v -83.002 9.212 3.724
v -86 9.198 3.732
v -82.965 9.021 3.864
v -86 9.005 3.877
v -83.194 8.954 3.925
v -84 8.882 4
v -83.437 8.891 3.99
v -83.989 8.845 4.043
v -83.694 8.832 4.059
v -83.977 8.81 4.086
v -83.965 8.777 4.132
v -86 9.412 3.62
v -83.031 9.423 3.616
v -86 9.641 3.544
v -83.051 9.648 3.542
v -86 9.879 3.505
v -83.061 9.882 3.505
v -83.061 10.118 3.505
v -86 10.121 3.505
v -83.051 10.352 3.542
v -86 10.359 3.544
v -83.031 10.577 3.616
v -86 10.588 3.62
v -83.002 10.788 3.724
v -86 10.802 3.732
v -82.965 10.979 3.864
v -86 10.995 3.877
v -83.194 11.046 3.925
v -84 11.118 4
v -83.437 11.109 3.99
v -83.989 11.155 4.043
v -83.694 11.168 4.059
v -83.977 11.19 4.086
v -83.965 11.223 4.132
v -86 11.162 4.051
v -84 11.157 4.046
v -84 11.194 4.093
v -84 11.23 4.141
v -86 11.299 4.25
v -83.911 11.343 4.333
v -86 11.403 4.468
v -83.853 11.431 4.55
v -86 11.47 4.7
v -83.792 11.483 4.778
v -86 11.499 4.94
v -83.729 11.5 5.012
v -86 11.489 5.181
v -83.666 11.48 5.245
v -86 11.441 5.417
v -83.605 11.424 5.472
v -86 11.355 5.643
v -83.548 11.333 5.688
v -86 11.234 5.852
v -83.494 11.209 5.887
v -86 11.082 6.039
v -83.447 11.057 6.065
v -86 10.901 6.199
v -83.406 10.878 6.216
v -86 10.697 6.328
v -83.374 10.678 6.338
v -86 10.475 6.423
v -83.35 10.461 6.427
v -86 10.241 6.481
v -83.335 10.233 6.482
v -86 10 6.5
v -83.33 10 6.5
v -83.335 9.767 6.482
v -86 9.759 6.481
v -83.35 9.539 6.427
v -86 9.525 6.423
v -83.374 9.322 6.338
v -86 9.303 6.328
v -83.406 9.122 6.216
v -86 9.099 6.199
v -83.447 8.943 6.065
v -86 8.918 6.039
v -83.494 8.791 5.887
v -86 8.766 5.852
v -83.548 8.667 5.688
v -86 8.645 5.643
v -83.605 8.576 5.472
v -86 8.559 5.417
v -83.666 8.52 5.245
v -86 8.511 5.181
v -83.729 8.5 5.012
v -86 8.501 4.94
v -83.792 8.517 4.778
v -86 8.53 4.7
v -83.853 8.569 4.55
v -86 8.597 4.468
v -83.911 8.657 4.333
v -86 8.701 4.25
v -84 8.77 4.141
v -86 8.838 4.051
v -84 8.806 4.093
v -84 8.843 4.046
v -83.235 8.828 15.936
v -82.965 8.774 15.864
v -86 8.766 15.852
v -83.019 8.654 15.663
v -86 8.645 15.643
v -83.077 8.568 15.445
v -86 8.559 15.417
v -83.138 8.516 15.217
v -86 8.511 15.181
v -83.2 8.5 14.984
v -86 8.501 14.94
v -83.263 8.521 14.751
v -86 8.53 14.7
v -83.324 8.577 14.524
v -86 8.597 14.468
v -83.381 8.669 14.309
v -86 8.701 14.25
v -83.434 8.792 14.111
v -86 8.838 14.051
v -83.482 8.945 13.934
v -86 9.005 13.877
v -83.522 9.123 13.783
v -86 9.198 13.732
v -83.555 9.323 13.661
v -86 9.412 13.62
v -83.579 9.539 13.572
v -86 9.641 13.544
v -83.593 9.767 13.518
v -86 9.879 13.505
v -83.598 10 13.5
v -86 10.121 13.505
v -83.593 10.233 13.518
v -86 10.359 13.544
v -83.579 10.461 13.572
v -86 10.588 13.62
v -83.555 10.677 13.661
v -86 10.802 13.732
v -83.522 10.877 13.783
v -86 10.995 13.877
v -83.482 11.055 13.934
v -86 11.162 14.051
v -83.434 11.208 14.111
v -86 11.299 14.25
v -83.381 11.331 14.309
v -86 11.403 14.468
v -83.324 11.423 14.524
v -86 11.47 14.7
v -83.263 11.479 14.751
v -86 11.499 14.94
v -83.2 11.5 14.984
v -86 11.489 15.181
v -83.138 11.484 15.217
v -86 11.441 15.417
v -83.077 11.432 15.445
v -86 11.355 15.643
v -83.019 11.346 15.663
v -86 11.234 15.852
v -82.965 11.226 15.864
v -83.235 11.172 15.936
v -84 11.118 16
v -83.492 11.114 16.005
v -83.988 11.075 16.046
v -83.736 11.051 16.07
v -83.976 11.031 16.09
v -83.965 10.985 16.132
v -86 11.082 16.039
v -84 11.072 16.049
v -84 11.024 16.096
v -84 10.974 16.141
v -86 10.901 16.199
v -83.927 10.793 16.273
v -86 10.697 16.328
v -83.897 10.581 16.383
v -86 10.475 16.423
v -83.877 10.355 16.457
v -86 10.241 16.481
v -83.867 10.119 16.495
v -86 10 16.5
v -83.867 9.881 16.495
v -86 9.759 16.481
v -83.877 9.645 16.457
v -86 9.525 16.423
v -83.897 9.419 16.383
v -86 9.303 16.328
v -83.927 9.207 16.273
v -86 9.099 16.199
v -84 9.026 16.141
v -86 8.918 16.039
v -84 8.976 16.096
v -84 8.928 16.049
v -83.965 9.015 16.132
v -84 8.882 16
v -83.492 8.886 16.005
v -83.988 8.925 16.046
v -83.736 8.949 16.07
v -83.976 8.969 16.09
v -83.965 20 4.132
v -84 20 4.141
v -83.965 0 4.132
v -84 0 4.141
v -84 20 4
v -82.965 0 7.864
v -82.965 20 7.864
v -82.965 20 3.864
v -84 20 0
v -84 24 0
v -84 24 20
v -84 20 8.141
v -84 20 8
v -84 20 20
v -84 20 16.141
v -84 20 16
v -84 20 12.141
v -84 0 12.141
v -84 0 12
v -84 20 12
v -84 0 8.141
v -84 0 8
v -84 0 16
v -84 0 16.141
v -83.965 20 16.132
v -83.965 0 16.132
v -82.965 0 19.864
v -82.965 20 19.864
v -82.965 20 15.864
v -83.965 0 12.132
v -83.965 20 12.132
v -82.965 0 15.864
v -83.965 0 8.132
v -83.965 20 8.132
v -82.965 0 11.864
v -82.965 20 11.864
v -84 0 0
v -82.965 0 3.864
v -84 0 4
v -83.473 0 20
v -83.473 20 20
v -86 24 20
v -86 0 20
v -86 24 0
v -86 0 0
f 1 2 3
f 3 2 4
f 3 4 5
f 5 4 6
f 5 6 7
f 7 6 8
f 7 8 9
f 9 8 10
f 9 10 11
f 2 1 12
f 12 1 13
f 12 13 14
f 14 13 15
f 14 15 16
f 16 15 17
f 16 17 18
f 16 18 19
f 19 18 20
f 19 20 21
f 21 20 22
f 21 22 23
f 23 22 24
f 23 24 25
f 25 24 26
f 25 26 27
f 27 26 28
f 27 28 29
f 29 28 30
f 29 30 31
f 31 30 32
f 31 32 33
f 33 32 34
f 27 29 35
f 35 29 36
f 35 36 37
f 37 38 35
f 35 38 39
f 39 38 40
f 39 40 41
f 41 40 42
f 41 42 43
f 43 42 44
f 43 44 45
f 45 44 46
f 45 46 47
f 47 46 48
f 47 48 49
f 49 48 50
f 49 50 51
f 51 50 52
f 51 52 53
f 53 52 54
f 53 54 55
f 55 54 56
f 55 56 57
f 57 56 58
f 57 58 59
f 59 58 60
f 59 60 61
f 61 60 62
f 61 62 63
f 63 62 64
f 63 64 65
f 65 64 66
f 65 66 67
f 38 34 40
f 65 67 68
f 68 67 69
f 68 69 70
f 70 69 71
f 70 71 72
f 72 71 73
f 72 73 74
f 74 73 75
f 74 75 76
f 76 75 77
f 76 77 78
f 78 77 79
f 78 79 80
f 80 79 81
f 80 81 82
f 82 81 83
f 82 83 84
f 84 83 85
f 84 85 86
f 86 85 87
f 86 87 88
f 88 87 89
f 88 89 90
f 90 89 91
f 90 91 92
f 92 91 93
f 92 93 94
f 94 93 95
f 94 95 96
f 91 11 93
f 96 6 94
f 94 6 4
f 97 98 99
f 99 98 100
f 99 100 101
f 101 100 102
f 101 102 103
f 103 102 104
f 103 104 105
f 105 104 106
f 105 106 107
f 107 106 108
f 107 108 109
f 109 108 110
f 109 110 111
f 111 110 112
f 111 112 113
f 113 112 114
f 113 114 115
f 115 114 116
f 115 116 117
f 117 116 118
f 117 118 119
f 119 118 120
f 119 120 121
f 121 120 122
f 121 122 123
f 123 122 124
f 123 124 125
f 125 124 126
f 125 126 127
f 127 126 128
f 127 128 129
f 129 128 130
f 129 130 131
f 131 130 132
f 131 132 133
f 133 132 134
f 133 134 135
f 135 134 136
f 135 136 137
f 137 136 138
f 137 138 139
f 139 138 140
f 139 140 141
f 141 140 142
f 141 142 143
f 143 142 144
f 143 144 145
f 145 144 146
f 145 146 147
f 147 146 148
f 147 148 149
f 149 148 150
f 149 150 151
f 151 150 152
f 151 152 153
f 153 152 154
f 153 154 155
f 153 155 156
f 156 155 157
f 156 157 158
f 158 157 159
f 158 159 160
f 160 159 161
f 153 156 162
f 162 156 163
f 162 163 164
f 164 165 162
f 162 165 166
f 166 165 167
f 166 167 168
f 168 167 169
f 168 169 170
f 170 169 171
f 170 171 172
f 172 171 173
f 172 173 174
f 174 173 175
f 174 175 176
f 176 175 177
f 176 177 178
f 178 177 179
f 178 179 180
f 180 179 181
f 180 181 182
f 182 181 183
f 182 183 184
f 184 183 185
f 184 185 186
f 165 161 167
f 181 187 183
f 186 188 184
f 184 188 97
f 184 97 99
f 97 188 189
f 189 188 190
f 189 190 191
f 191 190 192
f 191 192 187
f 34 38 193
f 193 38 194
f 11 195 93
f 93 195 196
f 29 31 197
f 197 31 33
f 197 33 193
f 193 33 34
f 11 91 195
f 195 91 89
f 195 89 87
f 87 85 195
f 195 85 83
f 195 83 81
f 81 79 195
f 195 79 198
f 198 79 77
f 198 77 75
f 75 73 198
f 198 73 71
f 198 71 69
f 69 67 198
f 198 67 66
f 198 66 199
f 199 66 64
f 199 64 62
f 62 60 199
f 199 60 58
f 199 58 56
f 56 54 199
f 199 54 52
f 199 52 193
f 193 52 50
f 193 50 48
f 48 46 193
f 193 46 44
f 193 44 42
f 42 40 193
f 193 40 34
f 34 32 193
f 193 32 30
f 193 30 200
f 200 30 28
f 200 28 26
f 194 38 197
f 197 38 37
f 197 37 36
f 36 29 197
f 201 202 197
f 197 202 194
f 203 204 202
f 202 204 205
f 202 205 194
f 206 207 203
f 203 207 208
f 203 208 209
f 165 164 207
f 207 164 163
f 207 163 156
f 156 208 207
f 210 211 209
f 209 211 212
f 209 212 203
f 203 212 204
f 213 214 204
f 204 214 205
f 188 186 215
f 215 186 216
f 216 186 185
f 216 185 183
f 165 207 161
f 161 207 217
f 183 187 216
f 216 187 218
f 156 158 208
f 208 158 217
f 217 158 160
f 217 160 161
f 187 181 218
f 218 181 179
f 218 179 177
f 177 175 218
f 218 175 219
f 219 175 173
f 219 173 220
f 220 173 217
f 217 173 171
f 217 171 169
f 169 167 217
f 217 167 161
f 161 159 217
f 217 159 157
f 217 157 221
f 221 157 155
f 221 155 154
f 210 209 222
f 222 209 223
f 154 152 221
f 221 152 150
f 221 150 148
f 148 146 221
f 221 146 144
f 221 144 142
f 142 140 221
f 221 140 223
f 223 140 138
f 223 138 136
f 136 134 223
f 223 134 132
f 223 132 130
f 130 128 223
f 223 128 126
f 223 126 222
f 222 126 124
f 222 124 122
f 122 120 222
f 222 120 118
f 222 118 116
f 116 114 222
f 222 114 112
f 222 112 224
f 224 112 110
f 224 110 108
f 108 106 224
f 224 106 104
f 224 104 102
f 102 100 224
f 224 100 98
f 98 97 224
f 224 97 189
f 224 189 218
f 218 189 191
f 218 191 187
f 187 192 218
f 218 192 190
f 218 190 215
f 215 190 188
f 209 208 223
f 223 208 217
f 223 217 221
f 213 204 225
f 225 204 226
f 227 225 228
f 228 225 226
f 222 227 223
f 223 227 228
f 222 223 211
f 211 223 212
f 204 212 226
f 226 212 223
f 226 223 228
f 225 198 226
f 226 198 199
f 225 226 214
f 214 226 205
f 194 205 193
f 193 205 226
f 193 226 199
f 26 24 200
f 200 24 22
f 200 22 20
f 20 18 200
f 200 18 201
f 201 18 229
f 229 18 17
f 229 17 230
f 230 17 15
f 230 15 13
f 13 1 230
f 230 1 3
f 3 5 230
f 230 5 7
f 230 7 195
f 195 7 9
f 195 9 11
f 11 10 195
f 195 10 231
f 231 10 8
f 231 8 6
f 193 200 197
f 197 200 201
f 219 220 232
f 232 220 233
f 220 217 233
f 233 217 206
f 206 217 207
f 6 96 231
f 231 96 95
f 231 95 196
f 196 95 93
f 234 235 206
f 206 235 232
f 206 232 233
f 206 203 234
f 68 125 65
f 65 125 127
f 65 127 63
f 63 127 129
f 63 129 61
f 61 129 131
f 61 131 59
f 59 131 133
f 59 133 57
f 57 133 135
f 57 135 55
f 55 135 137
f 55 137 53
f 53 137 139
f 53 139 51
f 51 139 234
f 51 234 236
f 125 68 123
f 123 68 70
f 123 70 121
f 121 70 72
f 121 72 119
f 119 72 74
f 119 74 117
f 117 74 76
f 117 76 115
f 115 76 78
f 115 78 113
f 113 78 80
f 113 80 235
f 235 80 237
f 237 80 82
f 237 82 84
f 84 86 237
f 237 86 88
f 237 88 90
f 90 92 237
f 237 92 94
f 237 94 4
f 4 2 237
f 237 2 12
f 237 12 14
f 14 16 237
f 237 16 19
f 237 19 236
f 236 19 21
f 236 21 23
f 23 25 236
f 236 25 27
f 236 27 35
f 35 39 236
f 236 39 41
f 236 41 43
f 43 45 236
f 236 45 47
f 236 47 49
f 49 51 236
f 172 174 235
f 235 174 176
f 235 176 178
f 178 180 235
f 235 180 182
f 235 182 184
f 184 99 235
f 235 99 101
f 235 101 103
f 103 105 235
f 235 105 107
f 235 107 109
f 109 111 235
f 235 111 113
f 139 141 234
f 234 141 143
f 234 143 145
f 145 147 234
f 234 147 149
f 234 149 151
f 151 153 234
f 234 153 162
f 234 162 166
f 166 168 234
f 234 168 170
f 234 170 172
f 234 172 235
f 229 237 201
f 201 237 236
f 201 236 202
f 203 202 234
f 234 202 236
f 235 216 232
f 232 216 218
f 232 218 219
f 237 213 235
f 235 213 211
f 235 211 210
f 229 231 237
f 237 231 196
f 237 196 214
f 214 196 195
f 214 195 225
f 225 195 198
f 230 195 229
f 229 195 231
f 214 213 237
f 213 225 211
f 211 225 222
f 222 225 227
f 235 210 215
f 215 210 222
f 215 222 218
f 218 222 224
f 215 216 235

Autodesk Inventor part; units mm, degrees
ref_plane "YZ Plane" through (0, 0, 0) normal (1, 0, 0) x (0, 1, 0)
ref_plane "XZ Plane" through (0, 0, 0) normal (0, 1, 0) x (-1, 0, 0)
ref_plane "XY Plane" through (0, 0, 0) normal (0, 0, 1) x (1, 0, 0)
sketch "Esboço1" plane through (0, 0, 0) normal (0, 1, 0) x (-1, 0, 0)
  line L0 (84, 0) -> (82.9647, 3.8637)
  line L1 (82.9647, 3.8637) -> (84, 4.1411)
  line L2 (84, 4) -> (82.9647, 7.8637)
  line L3 (82.9647, 7.8637) -> (84, 8.1411)
  line L4 (84, 0) -> (84.9017, 0)
  line L5 (84, 0) -> (86, 0)
  line L6 (84, 8) -> (82.9647, 11.8637)
  line L7 (84, 24) -> (83.9647, 24.1317)
  line L8 (82.9647, 27.8637) -> (84, 28.1411)
  line L9 (84, 28) -> (82.9647, 31.8637)
  line L10 (82.9647, 31.8637) -> (84, 32.1411)
  line L11 (84, 32) -> (82.9647, 35.8637)
  line L12 (82.9647, 35.8637) -> (84, 36.1411)
  line L13 (84, 36) -> (82.9647, 39.8637)
  line L14 (82.9647, 39.8637) -> (84, 40.1411)
  line L15 (84, 0) -> (80, 0) construction
  line L16 (82.9647, 11.8637) -> (84, 12.1411)
  line L17 (84, 12) -> (82.9647, 15.8637)
  line L18 (82.9647, 15.8637) -> (84, 16.1411)
  line L19 (84, 16) -> (82.9647, 19.8637)
  line L20 (82.9647, 19.8637) -> (83.4734, 20)
  line L21 (83.9647, 24.1317) -> (84, 24.1411)
  line L22 (84, 0) -> (82.9647, 3.8637)
  line L23 (82.9647, 3.8637) -> (84, 4.1411)
  line L24 (84, 4) -> (82.9647, 7.8637)
  line L25 (82.9647, 7.8637) -> (84, 8.1411)
  line L26 (84, 0) -> (84.9017, 0)
  line L27 (84, 0) -> (86, 0)
  line L28 (84, 8) -> (82.9647, 11.8637)
  line L29 (84, 24) -> (83.9647, 24.1317)
  line L30 (82.9647, 27.8637) -> (84, 28.1411)
  line L31 (84, 28) -> (82.9647, 31.8637)
  line L32 (82.9647, 31.8637) -> (84, 32.1411)
  line L33 (84, 32) -> (82.9647, 35.8637)
  line L34 (82.9647, 35.8637) -> (84, 36.1411)
  line L35 (84, 36) -> (82.9647, 39.8637)
  line L36 (82.9647, 39.8637) -> (84, 40.1411)
  line L37 (84, 0) -> (80, 0) construction
  line L38 (82.9647, 11.8637) -> (84, 12.1411)
  line L39 (84, 12) -> (82.9647, 15.8637)
  line L40 (82.9647, 15.8637) -> (84, 16.1411)
  line L41 (84, 16) -> (82.9647, 19.8637)
  line L42 (82.9647, 19.8637) -> (83.4734, 20)
  line L43 (83.9647, 24.1317) -> (84, 24.1411)
  line L44 (84, 0) -> (86, 0)
  line L45 (86, 0) -> (86, 20)
  line L46 (86, 20) -> (84, 20)
  line L47 (84, 20) -> (84, 0)
  line L48 (84, 20) -> (83.4734, 20)
  point P0 (0, 0)
  point P1 (83.9647, 16.1317)
  point P2 (83.9647, 12.1317)
  point P3 (83.9647, 8.1317)
  point P4 (83.9647, 4.1317)
extrude "Extrusão1" add sketch "Esboço1" along normal blind 24 contours L47 L46 L45 L5 L4
extrude "Extrusão2" add sketch "Esboço1" along normal blind 20 contours L0 L1 L2 L47 | L2 L3 L6 L47 L1 | L6 L16 L17 L47 L3 | L47 L18 L19 L20 L48 | L17 L18 L19 L47 L16
sketch "Esboço2" plane through (-86, 0, 0) normal (-1, 0, 0) x (0, 0, 1)
  point P0 (0, 0)
  point P1 (5, 10)
  point P2 (15, 10)
hole "Furo1" at (-86, 10, 5) at (-86, 10, 15) direction (1, 0, 0) diameter 3 end through all
properties part number "suporte estruzor 3"
